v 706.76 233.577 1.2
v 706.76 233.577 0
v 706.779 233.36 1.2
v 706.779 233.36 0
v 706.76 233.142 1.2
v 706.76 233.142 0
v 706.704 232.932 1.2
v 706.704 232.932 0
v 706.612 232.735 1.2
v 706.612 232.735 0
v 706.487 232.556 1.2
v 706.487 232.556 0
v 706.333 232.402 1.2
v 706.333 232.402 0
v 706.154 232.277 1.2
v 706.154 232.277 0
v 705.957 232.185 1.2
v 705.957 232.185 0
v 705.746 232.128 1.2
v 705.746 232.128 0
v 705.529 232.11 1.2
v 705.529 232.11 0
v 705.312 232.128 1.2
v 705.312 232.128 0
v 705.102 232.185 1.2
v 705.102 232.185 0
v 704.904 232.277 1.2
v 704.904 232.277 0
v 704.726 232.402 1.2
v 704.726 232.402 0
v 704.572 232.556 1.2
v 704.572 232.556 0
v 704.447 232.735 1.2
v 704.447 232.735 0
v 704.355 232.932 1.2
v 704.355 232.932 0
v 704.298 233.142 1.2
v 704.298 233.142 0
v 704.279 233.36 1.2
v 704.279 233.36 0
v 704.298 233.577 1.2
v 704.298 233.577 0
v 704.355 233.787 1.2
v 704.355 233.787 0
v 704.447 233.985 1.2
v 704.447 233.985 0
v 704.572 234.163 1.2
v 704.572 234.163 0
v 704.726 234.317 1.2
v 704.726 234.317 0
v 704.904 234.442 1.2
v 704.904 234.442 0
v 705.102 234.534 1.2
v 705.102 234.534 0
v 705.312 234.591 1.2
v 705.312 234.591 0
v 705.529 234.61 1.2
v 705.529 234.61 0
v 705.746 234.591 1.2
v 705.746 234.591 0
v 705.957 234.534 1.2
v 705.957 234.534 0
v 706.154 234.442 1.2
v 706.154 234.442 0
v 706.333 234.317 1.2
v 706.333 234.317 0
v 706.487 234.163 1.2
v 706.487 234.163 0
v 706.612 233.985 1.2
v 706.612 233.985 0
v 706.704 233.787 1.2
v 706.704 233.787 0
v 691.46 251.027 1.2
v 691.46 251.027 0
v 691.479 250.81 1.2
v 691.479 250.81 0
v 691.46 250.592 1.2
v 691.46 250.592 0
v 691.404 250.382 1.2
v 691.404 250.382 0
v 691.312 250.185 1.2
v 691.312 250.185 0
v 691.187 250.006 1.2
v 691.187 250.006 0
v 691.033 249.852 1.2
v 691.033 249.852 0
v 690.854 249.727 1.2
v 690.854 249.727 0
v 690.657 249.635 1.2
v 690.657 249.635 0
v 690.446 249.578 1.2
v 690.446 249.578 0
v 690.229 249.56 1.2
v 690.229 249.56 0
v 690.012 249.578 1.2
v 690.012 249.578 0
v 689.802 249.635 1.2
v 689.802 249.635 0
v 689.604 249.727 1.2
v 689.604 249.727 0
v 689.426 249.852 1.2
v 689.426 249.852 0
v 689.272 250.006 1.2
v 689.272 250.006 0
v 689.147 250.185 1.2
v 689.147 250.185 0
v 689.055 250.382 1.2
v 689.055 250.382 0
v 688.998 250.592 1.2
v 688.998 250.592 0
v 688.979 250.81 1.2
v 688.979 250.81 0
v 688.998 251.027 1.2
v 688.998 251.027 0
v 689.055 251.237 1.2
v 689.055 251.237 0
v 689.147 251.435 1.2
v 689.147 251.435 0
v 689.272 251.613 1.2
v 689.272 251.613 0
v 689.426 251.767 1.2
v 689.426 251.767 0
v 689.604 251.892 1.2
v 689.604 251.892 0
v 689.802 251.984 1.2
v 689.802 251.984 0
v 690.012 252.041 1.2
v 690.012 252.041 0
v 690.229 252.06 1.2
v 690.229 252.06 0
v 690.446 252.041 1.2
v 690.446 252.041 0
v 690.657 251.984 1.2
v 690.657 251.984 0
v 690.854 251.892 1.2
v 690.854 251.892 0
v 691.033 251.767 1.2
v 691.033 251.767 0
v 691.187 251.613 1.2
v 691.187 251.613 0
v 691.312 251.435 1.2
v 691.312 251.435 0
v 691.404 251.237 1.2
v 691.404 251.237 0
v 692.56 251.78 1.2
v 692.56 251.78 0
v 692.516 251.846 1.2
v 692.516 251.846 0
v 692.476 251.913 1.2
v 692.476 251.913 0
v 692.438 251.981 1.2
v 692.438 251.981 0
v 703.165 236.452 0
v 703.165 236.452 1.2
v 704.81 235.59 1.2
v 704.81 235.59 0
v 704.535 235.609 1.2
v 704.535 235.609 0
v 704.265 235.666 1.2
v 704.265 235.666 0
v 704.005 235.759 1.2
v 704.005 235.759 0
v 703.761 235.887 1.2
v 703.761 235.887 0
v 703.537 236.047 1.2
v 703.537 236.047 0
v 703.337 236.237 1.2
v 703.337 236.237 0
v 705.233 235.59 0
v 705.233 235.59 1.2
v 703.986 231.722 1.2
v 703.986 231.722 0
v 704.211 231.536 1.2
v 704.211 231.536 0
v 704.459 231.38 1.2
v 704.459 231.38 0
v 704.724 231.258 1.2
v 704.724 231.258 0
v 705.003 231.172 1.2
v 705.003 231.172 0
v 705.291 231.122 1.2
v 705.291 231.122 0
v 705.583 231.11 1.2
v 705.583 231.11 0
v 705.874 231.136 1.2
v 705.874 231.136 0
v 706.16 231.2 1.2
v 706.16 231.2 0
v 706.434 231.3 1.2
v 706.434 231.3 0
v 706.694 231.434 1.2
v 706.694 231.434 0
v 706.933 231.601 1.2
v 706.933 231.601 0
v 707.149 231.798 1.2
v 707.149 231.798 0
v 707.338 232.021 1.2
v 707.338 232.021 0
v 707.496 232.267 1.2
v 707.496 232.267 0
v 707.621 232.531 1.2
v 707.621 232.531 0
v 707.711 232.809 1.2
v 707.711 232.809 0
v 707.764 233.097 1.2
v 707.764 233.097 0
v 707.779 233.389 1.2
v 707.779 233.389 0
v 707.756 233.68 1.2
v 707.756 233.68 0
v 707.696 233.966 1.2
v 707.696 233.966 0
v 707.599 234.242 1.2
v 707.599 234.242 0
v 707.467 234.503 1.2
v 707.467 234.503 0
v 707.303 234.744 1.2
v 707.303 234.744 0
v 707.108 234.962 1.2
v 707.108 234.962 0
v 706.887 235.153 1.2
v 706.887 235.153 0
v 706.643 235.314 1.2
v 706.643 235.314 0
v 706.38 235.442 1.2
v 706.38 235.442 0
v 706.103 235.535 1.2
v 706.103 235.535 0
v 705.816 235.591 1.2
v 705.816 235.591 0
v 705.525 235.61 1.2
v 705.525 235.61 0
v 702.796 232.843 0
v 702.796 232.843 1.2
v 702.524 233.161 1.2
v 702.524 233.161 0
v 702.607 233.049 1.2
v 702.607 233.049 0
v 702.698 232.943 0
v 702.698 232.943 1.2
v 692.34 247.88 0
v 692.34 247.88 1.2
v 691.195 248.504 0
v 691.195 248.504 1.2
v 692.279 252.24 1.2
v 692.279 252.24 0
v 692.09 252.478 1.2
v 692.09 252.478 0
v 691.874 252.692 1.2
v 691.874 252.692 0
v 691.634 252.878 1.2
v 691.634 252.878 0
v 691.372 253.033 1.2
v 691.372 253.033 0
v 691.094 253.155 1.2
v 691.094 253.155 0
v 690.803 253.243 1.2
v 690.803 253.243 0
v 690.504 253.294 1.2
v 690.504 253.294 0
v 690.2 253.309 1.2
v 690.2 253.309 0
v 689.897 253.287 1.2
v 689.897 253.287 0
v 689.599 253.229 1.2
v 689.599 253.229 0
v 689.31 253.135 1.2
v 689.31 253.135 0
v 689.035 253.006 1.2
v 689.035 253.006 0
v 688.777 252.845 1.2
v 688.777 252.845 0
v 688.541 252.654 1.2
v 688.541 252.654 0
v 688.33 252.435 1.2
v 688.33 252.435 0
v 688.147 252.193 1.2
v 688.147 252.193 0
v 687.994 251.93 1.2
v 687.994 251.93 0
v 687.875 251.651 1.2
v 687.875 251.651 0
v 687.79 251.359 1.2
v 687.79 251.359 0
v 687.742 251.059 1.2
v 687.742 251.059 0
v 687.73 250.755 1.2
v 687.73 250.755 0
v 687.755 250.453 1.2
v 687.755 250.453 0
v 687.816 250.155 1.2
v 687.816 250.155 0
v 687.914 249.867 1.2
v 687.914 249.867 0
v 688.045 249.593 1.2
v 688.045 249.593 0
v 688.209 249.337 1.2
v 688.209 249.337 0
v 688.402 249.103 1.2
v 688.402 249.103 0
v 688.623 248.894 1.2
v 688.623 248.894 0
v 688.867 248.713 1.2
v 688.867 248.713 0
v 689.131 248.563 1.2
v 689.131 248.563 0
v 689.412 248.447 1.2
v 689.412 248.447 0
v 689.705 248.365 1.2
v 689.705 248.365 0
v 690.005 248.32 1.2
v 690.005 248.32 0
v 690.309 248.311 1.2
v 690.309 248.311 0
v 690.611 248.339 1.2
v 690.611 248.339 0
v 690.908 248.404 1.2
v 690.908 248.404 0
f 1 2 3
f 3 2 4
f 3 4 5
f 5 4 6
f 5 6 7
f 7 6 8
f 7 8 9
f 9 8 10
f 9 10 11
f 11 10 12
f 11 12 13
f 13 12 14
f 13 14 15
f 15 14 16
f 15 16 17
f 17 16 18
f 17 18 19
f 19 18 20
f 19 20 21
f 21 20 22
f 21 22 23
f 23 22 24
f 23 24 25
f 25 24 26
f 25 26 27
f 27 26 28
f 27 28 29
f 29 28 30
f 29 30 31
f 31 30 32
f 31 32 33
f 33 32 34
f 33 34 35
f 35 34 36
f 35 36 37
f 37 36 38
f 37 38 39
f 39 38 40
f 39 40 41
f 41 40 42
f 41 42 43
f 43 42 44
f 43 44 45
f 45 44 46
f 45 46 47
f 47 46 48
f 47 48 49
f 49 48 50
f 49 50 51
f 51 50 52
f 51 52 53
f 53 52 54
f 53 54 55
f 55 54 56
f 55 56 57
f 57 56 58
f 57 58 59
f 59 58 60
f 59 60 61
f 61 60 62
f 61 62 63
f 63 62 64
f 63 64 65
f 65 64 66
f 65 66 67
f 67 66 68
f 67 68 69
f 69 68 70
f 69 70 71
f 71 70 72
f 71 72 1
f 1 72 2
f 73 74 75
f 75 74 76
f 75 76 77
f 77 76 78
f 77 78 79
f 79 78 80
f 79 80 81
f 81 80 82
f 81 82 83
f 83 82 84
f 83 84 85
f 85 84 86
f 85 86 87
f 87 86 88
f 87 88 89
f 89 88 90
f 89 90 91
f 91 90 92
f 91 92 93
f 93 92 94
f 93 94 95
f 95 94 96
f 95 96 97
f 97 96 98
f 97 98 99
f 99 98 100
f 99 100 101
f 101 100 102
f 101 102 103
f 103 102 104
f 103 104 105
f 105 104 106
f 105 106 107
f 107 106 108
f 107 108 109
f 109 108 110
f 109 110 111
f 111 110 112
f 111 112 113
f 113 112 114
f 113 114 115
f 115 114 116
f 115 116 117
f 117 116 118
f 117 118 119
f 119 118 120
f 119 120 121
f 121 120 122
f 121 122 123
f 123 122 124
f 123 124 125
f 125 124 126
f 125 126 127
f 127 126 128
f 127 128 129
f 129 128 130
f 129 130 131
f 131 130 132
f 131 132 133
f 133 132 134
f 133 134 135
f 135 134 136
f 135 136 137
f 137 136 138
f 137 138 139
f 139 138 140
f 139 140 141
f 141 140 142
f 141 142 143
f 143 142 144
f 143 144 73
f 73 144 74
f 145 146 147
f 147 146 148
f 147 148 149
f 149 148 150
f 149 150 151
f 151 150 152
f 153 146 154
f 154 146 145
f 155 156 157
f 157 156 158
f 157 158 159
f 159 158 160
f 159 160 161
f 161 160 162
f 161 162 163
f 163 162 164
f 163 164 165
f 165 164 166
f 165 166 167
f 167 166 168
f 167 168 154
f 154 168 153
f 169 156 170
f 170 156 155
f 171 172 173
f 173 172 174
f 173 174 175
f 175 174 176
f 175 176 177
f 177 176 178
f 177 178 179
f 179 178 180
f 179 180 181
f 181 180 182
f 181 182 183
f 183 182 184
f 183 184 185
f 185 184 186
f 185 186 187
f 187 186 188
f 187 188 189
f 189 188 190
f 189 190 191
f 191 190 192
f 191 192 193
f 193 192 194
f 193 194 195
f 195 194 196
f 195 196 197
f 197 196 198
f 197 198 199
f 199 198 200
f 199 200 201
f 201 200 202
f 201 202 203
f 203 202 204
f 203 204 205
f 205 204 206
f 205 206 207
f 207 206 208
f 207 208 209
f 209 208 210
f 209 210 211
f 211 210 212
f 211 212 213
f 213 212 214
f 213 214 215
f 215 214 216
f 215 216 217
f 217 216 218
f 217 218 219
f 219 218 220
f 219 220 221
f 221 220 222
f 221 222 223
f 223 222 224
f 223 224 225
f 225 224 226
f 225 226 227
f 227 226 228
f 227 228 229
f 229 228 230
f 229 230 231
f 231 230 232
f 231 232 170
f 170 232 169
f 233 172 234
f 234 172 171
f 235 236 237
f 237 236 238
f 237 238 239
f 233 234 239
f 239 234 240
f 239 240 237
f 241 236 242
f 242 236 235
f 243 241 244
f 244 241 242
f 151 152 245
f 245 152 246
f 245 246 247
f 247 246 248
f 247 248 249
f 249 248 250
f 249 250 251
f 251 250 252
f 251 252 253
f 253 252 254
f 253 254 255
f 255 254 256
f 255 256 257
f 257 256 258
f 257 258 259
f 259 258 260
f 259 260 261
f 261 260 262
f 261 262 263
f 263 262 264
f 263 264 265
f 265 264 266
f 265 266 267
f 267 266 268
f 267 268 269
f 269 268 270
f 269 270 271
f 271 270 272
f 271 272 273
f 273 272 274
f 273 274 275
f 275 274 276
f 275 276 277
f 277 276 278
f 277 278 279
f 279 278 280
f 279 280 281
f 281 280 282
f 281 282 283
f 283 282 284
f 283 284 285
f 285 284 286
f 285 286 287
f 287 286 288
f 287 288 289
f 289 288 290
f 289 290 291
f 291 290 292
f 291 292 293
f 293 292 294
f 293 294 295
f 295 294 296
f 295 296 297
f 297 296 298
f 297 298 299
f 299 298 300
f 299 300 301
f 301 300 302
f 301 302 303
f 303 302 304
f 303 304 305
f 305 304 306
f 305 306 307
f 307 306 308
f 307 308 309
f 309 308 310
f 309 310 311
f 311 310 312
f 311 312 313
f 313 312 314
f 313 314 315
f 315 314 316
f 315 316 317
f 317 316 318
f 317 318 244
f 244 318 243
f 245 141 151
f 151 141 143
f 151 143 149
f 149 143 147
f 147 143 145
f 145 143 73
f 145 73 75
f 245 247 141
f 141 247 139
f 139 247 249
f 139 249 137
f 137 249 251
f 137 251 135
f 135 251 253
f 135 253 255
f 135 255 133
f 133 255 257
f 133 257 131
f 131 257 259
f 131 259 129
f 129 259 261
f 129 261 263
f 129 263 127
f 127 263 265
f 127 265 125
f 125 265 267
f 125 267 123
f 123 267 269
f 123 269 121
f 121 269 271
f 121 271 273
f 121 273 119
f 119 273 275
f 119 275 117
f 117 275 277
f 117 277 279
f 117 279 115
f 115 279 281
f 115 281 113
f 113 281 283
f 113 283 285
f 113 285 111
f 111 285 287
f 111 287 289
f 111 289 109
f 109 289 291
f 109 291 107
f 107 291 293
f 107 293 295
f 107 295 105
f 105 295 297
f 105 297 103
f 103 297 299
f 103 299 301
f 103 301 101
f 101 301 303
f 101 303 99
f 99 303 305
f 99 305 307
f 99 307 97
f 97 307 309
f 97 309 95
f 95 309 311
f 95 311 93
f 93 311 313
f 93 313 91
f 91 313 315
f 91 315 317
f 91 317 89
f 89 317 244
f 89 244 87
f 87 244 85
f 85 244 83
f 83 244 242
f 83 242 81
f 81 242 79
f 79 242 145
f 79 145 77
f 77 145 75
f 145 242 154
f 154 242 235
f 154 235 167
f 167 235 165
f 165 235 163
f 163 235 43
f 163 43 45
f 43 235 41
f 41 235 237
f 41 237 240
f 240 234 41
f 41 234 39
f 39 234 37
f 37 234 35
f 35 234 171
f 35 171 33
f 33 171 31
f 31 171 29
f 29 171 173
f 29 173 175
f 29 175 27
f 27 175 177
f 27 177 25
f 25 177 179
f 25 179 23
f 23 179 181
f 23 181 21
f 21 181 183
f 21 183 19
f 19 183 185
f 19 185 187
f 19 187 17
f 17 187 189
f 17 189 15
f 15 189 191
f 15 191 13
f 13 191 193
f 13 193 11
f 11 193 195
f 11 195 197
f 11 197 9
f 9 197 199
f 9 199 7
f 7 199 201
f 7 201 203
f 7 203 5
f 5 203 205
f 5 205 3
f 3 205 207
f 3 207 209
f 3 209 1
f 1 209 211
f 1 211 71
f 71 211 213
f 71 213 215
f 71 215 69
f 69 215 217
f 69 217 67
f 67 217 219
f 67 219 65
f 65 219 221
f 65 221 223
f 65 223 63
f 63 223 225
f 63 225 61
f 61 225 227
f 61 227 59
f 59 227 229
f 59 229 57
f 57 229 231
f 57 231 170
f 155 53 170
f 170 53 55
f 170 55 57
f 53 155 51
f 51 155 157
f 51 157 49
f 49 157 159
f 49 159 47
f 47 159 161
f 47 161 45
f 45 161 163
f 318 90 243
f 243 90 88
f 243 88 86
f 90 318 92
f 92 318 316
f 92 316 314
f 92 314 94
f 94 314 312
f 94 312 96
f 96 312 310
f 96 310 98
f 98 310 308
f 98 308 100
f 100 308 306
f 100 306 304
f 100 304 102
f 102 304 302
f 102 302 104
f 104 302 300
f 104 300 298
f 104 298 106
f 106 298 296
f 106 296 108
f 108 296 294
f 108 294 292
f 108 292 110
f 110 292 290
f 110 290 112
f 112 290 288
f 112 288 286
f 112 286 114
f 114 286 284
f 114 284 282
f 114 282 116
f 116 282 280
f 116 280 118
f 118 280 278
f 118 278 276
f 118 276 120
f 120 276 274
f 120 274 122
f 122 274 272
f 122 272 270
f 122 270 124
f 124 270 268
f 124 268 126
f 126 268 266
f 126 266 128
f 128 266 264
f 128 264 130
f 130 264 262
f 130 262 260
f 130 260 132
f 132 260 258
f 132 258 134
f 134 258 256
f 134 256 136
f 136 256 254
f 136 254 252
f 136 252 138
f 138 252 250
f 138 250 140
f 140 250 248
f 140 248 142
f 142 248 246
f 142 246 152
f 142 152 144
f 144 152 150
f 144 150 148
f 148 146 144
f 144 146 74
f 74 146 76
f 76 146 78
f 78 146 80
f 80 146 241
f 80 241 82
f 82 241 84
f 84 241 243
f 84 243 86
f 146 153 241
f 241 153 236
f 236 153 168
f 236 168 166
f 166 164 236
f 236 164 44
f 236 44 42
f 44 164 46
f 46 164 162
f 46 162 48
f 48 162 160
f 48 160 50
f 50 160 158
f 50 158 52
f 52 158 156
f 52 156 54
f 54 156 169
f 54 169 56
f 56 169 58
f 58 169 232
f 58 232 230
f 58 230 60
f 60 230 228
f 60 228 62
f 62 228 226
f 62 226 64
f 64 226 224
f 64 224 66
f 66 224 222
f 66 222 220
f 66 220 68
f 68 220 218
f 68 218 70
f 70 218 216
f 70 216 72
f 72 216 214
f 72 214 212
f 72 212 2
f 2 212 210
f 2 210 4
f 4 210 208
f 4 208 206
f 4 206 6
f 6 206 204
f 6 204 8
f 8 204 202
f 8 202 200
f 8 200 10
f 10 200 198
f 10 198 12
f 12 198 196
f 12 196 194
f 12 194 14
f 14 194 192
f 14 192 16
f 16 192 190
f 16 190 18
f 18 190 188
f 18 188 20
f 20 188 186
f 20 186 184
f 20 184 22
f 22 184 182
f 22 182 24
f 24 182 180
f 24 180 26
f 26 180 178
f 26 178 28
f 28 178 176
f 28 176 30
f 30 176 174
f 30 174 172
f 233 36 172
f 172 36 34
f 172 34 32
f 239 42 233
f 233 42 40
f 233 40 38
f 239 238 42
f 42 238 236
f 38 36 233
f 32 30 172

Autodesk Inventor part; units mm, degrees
ref_plane "YZ Plane" through (0, 0, 0) normal (1, 0, 0) x (0, 1, 0)
ref_plane "XZ Plane" through (0, 0, 0) normal (0, 1, 0) x (-1, 0, 0)
ref_plane "XY Plane" through (0, 0, 0) normal (0, 0, 1) x (1, 0, 0)
sketch "Boceto1" plane through (0, 0, 0) normal (0, 0, 1) x (1, 0, 0)
  circle A0 centre (690.2291, 250.8095) radius 1.25
  arc A1 (692.4377, 251.981) -> (691.1952, 248.5037) centre (690.2291, 250.8095) ccw
  circle A2 centre (705.5291, 233.3595) radius 1.25
  line L0 (692.5597, 251.7803) -> (703.1648, 236.452)
  line L1 (692.3398, 247.8801) -> (702.5235, 233.1607)
  arc A3 (702.665, 232.951) -> (702.6433, 232.9876) centre (702.3966, 232.8169) ccw
  arc A4 (703.9859, 231.7221) -> (705.2332, 235.59) centre (705.5291, 233.3595) ccw
  line L2 (702.7965, 232.8432) -> (703.9859, 231.7221)
  line L3 (704.8095, 235.59) -> (705.2332, 235.59)
  arc A5 (703.1648, 236.452) -> (704.8095, 235.59) centre (704.8095, 237.59) ccw
  arc A6 (702.5235, 233.1607) -> (702.7965, 232.8432) centre (704.1683, 234.2986) ccw
  line L4 (692.3398, 247.8801) -> (691.1952, 248.5037)
  arc A7 (692.4377, 251.981) -> (692.5597, 251.7803) centre (694.2045, 252.9182) ccw
  point P0 (0, 0)
  dimension "d7" = 2.5
  dimension "d8" = 5
  dimension "d9" = 2.5
  dimension "d11" = 15.3
  dimension "d12" = 17.45
  dimension "d18" = 4.5
  dimension "d19" = 2
  dimension "d20" = 2.4
  dimension "d21" = 2
extrude "Extrusión1" add sketch "Boceto1" along normal blind 1.2
properties part number "Pieza9_3DPrint"
